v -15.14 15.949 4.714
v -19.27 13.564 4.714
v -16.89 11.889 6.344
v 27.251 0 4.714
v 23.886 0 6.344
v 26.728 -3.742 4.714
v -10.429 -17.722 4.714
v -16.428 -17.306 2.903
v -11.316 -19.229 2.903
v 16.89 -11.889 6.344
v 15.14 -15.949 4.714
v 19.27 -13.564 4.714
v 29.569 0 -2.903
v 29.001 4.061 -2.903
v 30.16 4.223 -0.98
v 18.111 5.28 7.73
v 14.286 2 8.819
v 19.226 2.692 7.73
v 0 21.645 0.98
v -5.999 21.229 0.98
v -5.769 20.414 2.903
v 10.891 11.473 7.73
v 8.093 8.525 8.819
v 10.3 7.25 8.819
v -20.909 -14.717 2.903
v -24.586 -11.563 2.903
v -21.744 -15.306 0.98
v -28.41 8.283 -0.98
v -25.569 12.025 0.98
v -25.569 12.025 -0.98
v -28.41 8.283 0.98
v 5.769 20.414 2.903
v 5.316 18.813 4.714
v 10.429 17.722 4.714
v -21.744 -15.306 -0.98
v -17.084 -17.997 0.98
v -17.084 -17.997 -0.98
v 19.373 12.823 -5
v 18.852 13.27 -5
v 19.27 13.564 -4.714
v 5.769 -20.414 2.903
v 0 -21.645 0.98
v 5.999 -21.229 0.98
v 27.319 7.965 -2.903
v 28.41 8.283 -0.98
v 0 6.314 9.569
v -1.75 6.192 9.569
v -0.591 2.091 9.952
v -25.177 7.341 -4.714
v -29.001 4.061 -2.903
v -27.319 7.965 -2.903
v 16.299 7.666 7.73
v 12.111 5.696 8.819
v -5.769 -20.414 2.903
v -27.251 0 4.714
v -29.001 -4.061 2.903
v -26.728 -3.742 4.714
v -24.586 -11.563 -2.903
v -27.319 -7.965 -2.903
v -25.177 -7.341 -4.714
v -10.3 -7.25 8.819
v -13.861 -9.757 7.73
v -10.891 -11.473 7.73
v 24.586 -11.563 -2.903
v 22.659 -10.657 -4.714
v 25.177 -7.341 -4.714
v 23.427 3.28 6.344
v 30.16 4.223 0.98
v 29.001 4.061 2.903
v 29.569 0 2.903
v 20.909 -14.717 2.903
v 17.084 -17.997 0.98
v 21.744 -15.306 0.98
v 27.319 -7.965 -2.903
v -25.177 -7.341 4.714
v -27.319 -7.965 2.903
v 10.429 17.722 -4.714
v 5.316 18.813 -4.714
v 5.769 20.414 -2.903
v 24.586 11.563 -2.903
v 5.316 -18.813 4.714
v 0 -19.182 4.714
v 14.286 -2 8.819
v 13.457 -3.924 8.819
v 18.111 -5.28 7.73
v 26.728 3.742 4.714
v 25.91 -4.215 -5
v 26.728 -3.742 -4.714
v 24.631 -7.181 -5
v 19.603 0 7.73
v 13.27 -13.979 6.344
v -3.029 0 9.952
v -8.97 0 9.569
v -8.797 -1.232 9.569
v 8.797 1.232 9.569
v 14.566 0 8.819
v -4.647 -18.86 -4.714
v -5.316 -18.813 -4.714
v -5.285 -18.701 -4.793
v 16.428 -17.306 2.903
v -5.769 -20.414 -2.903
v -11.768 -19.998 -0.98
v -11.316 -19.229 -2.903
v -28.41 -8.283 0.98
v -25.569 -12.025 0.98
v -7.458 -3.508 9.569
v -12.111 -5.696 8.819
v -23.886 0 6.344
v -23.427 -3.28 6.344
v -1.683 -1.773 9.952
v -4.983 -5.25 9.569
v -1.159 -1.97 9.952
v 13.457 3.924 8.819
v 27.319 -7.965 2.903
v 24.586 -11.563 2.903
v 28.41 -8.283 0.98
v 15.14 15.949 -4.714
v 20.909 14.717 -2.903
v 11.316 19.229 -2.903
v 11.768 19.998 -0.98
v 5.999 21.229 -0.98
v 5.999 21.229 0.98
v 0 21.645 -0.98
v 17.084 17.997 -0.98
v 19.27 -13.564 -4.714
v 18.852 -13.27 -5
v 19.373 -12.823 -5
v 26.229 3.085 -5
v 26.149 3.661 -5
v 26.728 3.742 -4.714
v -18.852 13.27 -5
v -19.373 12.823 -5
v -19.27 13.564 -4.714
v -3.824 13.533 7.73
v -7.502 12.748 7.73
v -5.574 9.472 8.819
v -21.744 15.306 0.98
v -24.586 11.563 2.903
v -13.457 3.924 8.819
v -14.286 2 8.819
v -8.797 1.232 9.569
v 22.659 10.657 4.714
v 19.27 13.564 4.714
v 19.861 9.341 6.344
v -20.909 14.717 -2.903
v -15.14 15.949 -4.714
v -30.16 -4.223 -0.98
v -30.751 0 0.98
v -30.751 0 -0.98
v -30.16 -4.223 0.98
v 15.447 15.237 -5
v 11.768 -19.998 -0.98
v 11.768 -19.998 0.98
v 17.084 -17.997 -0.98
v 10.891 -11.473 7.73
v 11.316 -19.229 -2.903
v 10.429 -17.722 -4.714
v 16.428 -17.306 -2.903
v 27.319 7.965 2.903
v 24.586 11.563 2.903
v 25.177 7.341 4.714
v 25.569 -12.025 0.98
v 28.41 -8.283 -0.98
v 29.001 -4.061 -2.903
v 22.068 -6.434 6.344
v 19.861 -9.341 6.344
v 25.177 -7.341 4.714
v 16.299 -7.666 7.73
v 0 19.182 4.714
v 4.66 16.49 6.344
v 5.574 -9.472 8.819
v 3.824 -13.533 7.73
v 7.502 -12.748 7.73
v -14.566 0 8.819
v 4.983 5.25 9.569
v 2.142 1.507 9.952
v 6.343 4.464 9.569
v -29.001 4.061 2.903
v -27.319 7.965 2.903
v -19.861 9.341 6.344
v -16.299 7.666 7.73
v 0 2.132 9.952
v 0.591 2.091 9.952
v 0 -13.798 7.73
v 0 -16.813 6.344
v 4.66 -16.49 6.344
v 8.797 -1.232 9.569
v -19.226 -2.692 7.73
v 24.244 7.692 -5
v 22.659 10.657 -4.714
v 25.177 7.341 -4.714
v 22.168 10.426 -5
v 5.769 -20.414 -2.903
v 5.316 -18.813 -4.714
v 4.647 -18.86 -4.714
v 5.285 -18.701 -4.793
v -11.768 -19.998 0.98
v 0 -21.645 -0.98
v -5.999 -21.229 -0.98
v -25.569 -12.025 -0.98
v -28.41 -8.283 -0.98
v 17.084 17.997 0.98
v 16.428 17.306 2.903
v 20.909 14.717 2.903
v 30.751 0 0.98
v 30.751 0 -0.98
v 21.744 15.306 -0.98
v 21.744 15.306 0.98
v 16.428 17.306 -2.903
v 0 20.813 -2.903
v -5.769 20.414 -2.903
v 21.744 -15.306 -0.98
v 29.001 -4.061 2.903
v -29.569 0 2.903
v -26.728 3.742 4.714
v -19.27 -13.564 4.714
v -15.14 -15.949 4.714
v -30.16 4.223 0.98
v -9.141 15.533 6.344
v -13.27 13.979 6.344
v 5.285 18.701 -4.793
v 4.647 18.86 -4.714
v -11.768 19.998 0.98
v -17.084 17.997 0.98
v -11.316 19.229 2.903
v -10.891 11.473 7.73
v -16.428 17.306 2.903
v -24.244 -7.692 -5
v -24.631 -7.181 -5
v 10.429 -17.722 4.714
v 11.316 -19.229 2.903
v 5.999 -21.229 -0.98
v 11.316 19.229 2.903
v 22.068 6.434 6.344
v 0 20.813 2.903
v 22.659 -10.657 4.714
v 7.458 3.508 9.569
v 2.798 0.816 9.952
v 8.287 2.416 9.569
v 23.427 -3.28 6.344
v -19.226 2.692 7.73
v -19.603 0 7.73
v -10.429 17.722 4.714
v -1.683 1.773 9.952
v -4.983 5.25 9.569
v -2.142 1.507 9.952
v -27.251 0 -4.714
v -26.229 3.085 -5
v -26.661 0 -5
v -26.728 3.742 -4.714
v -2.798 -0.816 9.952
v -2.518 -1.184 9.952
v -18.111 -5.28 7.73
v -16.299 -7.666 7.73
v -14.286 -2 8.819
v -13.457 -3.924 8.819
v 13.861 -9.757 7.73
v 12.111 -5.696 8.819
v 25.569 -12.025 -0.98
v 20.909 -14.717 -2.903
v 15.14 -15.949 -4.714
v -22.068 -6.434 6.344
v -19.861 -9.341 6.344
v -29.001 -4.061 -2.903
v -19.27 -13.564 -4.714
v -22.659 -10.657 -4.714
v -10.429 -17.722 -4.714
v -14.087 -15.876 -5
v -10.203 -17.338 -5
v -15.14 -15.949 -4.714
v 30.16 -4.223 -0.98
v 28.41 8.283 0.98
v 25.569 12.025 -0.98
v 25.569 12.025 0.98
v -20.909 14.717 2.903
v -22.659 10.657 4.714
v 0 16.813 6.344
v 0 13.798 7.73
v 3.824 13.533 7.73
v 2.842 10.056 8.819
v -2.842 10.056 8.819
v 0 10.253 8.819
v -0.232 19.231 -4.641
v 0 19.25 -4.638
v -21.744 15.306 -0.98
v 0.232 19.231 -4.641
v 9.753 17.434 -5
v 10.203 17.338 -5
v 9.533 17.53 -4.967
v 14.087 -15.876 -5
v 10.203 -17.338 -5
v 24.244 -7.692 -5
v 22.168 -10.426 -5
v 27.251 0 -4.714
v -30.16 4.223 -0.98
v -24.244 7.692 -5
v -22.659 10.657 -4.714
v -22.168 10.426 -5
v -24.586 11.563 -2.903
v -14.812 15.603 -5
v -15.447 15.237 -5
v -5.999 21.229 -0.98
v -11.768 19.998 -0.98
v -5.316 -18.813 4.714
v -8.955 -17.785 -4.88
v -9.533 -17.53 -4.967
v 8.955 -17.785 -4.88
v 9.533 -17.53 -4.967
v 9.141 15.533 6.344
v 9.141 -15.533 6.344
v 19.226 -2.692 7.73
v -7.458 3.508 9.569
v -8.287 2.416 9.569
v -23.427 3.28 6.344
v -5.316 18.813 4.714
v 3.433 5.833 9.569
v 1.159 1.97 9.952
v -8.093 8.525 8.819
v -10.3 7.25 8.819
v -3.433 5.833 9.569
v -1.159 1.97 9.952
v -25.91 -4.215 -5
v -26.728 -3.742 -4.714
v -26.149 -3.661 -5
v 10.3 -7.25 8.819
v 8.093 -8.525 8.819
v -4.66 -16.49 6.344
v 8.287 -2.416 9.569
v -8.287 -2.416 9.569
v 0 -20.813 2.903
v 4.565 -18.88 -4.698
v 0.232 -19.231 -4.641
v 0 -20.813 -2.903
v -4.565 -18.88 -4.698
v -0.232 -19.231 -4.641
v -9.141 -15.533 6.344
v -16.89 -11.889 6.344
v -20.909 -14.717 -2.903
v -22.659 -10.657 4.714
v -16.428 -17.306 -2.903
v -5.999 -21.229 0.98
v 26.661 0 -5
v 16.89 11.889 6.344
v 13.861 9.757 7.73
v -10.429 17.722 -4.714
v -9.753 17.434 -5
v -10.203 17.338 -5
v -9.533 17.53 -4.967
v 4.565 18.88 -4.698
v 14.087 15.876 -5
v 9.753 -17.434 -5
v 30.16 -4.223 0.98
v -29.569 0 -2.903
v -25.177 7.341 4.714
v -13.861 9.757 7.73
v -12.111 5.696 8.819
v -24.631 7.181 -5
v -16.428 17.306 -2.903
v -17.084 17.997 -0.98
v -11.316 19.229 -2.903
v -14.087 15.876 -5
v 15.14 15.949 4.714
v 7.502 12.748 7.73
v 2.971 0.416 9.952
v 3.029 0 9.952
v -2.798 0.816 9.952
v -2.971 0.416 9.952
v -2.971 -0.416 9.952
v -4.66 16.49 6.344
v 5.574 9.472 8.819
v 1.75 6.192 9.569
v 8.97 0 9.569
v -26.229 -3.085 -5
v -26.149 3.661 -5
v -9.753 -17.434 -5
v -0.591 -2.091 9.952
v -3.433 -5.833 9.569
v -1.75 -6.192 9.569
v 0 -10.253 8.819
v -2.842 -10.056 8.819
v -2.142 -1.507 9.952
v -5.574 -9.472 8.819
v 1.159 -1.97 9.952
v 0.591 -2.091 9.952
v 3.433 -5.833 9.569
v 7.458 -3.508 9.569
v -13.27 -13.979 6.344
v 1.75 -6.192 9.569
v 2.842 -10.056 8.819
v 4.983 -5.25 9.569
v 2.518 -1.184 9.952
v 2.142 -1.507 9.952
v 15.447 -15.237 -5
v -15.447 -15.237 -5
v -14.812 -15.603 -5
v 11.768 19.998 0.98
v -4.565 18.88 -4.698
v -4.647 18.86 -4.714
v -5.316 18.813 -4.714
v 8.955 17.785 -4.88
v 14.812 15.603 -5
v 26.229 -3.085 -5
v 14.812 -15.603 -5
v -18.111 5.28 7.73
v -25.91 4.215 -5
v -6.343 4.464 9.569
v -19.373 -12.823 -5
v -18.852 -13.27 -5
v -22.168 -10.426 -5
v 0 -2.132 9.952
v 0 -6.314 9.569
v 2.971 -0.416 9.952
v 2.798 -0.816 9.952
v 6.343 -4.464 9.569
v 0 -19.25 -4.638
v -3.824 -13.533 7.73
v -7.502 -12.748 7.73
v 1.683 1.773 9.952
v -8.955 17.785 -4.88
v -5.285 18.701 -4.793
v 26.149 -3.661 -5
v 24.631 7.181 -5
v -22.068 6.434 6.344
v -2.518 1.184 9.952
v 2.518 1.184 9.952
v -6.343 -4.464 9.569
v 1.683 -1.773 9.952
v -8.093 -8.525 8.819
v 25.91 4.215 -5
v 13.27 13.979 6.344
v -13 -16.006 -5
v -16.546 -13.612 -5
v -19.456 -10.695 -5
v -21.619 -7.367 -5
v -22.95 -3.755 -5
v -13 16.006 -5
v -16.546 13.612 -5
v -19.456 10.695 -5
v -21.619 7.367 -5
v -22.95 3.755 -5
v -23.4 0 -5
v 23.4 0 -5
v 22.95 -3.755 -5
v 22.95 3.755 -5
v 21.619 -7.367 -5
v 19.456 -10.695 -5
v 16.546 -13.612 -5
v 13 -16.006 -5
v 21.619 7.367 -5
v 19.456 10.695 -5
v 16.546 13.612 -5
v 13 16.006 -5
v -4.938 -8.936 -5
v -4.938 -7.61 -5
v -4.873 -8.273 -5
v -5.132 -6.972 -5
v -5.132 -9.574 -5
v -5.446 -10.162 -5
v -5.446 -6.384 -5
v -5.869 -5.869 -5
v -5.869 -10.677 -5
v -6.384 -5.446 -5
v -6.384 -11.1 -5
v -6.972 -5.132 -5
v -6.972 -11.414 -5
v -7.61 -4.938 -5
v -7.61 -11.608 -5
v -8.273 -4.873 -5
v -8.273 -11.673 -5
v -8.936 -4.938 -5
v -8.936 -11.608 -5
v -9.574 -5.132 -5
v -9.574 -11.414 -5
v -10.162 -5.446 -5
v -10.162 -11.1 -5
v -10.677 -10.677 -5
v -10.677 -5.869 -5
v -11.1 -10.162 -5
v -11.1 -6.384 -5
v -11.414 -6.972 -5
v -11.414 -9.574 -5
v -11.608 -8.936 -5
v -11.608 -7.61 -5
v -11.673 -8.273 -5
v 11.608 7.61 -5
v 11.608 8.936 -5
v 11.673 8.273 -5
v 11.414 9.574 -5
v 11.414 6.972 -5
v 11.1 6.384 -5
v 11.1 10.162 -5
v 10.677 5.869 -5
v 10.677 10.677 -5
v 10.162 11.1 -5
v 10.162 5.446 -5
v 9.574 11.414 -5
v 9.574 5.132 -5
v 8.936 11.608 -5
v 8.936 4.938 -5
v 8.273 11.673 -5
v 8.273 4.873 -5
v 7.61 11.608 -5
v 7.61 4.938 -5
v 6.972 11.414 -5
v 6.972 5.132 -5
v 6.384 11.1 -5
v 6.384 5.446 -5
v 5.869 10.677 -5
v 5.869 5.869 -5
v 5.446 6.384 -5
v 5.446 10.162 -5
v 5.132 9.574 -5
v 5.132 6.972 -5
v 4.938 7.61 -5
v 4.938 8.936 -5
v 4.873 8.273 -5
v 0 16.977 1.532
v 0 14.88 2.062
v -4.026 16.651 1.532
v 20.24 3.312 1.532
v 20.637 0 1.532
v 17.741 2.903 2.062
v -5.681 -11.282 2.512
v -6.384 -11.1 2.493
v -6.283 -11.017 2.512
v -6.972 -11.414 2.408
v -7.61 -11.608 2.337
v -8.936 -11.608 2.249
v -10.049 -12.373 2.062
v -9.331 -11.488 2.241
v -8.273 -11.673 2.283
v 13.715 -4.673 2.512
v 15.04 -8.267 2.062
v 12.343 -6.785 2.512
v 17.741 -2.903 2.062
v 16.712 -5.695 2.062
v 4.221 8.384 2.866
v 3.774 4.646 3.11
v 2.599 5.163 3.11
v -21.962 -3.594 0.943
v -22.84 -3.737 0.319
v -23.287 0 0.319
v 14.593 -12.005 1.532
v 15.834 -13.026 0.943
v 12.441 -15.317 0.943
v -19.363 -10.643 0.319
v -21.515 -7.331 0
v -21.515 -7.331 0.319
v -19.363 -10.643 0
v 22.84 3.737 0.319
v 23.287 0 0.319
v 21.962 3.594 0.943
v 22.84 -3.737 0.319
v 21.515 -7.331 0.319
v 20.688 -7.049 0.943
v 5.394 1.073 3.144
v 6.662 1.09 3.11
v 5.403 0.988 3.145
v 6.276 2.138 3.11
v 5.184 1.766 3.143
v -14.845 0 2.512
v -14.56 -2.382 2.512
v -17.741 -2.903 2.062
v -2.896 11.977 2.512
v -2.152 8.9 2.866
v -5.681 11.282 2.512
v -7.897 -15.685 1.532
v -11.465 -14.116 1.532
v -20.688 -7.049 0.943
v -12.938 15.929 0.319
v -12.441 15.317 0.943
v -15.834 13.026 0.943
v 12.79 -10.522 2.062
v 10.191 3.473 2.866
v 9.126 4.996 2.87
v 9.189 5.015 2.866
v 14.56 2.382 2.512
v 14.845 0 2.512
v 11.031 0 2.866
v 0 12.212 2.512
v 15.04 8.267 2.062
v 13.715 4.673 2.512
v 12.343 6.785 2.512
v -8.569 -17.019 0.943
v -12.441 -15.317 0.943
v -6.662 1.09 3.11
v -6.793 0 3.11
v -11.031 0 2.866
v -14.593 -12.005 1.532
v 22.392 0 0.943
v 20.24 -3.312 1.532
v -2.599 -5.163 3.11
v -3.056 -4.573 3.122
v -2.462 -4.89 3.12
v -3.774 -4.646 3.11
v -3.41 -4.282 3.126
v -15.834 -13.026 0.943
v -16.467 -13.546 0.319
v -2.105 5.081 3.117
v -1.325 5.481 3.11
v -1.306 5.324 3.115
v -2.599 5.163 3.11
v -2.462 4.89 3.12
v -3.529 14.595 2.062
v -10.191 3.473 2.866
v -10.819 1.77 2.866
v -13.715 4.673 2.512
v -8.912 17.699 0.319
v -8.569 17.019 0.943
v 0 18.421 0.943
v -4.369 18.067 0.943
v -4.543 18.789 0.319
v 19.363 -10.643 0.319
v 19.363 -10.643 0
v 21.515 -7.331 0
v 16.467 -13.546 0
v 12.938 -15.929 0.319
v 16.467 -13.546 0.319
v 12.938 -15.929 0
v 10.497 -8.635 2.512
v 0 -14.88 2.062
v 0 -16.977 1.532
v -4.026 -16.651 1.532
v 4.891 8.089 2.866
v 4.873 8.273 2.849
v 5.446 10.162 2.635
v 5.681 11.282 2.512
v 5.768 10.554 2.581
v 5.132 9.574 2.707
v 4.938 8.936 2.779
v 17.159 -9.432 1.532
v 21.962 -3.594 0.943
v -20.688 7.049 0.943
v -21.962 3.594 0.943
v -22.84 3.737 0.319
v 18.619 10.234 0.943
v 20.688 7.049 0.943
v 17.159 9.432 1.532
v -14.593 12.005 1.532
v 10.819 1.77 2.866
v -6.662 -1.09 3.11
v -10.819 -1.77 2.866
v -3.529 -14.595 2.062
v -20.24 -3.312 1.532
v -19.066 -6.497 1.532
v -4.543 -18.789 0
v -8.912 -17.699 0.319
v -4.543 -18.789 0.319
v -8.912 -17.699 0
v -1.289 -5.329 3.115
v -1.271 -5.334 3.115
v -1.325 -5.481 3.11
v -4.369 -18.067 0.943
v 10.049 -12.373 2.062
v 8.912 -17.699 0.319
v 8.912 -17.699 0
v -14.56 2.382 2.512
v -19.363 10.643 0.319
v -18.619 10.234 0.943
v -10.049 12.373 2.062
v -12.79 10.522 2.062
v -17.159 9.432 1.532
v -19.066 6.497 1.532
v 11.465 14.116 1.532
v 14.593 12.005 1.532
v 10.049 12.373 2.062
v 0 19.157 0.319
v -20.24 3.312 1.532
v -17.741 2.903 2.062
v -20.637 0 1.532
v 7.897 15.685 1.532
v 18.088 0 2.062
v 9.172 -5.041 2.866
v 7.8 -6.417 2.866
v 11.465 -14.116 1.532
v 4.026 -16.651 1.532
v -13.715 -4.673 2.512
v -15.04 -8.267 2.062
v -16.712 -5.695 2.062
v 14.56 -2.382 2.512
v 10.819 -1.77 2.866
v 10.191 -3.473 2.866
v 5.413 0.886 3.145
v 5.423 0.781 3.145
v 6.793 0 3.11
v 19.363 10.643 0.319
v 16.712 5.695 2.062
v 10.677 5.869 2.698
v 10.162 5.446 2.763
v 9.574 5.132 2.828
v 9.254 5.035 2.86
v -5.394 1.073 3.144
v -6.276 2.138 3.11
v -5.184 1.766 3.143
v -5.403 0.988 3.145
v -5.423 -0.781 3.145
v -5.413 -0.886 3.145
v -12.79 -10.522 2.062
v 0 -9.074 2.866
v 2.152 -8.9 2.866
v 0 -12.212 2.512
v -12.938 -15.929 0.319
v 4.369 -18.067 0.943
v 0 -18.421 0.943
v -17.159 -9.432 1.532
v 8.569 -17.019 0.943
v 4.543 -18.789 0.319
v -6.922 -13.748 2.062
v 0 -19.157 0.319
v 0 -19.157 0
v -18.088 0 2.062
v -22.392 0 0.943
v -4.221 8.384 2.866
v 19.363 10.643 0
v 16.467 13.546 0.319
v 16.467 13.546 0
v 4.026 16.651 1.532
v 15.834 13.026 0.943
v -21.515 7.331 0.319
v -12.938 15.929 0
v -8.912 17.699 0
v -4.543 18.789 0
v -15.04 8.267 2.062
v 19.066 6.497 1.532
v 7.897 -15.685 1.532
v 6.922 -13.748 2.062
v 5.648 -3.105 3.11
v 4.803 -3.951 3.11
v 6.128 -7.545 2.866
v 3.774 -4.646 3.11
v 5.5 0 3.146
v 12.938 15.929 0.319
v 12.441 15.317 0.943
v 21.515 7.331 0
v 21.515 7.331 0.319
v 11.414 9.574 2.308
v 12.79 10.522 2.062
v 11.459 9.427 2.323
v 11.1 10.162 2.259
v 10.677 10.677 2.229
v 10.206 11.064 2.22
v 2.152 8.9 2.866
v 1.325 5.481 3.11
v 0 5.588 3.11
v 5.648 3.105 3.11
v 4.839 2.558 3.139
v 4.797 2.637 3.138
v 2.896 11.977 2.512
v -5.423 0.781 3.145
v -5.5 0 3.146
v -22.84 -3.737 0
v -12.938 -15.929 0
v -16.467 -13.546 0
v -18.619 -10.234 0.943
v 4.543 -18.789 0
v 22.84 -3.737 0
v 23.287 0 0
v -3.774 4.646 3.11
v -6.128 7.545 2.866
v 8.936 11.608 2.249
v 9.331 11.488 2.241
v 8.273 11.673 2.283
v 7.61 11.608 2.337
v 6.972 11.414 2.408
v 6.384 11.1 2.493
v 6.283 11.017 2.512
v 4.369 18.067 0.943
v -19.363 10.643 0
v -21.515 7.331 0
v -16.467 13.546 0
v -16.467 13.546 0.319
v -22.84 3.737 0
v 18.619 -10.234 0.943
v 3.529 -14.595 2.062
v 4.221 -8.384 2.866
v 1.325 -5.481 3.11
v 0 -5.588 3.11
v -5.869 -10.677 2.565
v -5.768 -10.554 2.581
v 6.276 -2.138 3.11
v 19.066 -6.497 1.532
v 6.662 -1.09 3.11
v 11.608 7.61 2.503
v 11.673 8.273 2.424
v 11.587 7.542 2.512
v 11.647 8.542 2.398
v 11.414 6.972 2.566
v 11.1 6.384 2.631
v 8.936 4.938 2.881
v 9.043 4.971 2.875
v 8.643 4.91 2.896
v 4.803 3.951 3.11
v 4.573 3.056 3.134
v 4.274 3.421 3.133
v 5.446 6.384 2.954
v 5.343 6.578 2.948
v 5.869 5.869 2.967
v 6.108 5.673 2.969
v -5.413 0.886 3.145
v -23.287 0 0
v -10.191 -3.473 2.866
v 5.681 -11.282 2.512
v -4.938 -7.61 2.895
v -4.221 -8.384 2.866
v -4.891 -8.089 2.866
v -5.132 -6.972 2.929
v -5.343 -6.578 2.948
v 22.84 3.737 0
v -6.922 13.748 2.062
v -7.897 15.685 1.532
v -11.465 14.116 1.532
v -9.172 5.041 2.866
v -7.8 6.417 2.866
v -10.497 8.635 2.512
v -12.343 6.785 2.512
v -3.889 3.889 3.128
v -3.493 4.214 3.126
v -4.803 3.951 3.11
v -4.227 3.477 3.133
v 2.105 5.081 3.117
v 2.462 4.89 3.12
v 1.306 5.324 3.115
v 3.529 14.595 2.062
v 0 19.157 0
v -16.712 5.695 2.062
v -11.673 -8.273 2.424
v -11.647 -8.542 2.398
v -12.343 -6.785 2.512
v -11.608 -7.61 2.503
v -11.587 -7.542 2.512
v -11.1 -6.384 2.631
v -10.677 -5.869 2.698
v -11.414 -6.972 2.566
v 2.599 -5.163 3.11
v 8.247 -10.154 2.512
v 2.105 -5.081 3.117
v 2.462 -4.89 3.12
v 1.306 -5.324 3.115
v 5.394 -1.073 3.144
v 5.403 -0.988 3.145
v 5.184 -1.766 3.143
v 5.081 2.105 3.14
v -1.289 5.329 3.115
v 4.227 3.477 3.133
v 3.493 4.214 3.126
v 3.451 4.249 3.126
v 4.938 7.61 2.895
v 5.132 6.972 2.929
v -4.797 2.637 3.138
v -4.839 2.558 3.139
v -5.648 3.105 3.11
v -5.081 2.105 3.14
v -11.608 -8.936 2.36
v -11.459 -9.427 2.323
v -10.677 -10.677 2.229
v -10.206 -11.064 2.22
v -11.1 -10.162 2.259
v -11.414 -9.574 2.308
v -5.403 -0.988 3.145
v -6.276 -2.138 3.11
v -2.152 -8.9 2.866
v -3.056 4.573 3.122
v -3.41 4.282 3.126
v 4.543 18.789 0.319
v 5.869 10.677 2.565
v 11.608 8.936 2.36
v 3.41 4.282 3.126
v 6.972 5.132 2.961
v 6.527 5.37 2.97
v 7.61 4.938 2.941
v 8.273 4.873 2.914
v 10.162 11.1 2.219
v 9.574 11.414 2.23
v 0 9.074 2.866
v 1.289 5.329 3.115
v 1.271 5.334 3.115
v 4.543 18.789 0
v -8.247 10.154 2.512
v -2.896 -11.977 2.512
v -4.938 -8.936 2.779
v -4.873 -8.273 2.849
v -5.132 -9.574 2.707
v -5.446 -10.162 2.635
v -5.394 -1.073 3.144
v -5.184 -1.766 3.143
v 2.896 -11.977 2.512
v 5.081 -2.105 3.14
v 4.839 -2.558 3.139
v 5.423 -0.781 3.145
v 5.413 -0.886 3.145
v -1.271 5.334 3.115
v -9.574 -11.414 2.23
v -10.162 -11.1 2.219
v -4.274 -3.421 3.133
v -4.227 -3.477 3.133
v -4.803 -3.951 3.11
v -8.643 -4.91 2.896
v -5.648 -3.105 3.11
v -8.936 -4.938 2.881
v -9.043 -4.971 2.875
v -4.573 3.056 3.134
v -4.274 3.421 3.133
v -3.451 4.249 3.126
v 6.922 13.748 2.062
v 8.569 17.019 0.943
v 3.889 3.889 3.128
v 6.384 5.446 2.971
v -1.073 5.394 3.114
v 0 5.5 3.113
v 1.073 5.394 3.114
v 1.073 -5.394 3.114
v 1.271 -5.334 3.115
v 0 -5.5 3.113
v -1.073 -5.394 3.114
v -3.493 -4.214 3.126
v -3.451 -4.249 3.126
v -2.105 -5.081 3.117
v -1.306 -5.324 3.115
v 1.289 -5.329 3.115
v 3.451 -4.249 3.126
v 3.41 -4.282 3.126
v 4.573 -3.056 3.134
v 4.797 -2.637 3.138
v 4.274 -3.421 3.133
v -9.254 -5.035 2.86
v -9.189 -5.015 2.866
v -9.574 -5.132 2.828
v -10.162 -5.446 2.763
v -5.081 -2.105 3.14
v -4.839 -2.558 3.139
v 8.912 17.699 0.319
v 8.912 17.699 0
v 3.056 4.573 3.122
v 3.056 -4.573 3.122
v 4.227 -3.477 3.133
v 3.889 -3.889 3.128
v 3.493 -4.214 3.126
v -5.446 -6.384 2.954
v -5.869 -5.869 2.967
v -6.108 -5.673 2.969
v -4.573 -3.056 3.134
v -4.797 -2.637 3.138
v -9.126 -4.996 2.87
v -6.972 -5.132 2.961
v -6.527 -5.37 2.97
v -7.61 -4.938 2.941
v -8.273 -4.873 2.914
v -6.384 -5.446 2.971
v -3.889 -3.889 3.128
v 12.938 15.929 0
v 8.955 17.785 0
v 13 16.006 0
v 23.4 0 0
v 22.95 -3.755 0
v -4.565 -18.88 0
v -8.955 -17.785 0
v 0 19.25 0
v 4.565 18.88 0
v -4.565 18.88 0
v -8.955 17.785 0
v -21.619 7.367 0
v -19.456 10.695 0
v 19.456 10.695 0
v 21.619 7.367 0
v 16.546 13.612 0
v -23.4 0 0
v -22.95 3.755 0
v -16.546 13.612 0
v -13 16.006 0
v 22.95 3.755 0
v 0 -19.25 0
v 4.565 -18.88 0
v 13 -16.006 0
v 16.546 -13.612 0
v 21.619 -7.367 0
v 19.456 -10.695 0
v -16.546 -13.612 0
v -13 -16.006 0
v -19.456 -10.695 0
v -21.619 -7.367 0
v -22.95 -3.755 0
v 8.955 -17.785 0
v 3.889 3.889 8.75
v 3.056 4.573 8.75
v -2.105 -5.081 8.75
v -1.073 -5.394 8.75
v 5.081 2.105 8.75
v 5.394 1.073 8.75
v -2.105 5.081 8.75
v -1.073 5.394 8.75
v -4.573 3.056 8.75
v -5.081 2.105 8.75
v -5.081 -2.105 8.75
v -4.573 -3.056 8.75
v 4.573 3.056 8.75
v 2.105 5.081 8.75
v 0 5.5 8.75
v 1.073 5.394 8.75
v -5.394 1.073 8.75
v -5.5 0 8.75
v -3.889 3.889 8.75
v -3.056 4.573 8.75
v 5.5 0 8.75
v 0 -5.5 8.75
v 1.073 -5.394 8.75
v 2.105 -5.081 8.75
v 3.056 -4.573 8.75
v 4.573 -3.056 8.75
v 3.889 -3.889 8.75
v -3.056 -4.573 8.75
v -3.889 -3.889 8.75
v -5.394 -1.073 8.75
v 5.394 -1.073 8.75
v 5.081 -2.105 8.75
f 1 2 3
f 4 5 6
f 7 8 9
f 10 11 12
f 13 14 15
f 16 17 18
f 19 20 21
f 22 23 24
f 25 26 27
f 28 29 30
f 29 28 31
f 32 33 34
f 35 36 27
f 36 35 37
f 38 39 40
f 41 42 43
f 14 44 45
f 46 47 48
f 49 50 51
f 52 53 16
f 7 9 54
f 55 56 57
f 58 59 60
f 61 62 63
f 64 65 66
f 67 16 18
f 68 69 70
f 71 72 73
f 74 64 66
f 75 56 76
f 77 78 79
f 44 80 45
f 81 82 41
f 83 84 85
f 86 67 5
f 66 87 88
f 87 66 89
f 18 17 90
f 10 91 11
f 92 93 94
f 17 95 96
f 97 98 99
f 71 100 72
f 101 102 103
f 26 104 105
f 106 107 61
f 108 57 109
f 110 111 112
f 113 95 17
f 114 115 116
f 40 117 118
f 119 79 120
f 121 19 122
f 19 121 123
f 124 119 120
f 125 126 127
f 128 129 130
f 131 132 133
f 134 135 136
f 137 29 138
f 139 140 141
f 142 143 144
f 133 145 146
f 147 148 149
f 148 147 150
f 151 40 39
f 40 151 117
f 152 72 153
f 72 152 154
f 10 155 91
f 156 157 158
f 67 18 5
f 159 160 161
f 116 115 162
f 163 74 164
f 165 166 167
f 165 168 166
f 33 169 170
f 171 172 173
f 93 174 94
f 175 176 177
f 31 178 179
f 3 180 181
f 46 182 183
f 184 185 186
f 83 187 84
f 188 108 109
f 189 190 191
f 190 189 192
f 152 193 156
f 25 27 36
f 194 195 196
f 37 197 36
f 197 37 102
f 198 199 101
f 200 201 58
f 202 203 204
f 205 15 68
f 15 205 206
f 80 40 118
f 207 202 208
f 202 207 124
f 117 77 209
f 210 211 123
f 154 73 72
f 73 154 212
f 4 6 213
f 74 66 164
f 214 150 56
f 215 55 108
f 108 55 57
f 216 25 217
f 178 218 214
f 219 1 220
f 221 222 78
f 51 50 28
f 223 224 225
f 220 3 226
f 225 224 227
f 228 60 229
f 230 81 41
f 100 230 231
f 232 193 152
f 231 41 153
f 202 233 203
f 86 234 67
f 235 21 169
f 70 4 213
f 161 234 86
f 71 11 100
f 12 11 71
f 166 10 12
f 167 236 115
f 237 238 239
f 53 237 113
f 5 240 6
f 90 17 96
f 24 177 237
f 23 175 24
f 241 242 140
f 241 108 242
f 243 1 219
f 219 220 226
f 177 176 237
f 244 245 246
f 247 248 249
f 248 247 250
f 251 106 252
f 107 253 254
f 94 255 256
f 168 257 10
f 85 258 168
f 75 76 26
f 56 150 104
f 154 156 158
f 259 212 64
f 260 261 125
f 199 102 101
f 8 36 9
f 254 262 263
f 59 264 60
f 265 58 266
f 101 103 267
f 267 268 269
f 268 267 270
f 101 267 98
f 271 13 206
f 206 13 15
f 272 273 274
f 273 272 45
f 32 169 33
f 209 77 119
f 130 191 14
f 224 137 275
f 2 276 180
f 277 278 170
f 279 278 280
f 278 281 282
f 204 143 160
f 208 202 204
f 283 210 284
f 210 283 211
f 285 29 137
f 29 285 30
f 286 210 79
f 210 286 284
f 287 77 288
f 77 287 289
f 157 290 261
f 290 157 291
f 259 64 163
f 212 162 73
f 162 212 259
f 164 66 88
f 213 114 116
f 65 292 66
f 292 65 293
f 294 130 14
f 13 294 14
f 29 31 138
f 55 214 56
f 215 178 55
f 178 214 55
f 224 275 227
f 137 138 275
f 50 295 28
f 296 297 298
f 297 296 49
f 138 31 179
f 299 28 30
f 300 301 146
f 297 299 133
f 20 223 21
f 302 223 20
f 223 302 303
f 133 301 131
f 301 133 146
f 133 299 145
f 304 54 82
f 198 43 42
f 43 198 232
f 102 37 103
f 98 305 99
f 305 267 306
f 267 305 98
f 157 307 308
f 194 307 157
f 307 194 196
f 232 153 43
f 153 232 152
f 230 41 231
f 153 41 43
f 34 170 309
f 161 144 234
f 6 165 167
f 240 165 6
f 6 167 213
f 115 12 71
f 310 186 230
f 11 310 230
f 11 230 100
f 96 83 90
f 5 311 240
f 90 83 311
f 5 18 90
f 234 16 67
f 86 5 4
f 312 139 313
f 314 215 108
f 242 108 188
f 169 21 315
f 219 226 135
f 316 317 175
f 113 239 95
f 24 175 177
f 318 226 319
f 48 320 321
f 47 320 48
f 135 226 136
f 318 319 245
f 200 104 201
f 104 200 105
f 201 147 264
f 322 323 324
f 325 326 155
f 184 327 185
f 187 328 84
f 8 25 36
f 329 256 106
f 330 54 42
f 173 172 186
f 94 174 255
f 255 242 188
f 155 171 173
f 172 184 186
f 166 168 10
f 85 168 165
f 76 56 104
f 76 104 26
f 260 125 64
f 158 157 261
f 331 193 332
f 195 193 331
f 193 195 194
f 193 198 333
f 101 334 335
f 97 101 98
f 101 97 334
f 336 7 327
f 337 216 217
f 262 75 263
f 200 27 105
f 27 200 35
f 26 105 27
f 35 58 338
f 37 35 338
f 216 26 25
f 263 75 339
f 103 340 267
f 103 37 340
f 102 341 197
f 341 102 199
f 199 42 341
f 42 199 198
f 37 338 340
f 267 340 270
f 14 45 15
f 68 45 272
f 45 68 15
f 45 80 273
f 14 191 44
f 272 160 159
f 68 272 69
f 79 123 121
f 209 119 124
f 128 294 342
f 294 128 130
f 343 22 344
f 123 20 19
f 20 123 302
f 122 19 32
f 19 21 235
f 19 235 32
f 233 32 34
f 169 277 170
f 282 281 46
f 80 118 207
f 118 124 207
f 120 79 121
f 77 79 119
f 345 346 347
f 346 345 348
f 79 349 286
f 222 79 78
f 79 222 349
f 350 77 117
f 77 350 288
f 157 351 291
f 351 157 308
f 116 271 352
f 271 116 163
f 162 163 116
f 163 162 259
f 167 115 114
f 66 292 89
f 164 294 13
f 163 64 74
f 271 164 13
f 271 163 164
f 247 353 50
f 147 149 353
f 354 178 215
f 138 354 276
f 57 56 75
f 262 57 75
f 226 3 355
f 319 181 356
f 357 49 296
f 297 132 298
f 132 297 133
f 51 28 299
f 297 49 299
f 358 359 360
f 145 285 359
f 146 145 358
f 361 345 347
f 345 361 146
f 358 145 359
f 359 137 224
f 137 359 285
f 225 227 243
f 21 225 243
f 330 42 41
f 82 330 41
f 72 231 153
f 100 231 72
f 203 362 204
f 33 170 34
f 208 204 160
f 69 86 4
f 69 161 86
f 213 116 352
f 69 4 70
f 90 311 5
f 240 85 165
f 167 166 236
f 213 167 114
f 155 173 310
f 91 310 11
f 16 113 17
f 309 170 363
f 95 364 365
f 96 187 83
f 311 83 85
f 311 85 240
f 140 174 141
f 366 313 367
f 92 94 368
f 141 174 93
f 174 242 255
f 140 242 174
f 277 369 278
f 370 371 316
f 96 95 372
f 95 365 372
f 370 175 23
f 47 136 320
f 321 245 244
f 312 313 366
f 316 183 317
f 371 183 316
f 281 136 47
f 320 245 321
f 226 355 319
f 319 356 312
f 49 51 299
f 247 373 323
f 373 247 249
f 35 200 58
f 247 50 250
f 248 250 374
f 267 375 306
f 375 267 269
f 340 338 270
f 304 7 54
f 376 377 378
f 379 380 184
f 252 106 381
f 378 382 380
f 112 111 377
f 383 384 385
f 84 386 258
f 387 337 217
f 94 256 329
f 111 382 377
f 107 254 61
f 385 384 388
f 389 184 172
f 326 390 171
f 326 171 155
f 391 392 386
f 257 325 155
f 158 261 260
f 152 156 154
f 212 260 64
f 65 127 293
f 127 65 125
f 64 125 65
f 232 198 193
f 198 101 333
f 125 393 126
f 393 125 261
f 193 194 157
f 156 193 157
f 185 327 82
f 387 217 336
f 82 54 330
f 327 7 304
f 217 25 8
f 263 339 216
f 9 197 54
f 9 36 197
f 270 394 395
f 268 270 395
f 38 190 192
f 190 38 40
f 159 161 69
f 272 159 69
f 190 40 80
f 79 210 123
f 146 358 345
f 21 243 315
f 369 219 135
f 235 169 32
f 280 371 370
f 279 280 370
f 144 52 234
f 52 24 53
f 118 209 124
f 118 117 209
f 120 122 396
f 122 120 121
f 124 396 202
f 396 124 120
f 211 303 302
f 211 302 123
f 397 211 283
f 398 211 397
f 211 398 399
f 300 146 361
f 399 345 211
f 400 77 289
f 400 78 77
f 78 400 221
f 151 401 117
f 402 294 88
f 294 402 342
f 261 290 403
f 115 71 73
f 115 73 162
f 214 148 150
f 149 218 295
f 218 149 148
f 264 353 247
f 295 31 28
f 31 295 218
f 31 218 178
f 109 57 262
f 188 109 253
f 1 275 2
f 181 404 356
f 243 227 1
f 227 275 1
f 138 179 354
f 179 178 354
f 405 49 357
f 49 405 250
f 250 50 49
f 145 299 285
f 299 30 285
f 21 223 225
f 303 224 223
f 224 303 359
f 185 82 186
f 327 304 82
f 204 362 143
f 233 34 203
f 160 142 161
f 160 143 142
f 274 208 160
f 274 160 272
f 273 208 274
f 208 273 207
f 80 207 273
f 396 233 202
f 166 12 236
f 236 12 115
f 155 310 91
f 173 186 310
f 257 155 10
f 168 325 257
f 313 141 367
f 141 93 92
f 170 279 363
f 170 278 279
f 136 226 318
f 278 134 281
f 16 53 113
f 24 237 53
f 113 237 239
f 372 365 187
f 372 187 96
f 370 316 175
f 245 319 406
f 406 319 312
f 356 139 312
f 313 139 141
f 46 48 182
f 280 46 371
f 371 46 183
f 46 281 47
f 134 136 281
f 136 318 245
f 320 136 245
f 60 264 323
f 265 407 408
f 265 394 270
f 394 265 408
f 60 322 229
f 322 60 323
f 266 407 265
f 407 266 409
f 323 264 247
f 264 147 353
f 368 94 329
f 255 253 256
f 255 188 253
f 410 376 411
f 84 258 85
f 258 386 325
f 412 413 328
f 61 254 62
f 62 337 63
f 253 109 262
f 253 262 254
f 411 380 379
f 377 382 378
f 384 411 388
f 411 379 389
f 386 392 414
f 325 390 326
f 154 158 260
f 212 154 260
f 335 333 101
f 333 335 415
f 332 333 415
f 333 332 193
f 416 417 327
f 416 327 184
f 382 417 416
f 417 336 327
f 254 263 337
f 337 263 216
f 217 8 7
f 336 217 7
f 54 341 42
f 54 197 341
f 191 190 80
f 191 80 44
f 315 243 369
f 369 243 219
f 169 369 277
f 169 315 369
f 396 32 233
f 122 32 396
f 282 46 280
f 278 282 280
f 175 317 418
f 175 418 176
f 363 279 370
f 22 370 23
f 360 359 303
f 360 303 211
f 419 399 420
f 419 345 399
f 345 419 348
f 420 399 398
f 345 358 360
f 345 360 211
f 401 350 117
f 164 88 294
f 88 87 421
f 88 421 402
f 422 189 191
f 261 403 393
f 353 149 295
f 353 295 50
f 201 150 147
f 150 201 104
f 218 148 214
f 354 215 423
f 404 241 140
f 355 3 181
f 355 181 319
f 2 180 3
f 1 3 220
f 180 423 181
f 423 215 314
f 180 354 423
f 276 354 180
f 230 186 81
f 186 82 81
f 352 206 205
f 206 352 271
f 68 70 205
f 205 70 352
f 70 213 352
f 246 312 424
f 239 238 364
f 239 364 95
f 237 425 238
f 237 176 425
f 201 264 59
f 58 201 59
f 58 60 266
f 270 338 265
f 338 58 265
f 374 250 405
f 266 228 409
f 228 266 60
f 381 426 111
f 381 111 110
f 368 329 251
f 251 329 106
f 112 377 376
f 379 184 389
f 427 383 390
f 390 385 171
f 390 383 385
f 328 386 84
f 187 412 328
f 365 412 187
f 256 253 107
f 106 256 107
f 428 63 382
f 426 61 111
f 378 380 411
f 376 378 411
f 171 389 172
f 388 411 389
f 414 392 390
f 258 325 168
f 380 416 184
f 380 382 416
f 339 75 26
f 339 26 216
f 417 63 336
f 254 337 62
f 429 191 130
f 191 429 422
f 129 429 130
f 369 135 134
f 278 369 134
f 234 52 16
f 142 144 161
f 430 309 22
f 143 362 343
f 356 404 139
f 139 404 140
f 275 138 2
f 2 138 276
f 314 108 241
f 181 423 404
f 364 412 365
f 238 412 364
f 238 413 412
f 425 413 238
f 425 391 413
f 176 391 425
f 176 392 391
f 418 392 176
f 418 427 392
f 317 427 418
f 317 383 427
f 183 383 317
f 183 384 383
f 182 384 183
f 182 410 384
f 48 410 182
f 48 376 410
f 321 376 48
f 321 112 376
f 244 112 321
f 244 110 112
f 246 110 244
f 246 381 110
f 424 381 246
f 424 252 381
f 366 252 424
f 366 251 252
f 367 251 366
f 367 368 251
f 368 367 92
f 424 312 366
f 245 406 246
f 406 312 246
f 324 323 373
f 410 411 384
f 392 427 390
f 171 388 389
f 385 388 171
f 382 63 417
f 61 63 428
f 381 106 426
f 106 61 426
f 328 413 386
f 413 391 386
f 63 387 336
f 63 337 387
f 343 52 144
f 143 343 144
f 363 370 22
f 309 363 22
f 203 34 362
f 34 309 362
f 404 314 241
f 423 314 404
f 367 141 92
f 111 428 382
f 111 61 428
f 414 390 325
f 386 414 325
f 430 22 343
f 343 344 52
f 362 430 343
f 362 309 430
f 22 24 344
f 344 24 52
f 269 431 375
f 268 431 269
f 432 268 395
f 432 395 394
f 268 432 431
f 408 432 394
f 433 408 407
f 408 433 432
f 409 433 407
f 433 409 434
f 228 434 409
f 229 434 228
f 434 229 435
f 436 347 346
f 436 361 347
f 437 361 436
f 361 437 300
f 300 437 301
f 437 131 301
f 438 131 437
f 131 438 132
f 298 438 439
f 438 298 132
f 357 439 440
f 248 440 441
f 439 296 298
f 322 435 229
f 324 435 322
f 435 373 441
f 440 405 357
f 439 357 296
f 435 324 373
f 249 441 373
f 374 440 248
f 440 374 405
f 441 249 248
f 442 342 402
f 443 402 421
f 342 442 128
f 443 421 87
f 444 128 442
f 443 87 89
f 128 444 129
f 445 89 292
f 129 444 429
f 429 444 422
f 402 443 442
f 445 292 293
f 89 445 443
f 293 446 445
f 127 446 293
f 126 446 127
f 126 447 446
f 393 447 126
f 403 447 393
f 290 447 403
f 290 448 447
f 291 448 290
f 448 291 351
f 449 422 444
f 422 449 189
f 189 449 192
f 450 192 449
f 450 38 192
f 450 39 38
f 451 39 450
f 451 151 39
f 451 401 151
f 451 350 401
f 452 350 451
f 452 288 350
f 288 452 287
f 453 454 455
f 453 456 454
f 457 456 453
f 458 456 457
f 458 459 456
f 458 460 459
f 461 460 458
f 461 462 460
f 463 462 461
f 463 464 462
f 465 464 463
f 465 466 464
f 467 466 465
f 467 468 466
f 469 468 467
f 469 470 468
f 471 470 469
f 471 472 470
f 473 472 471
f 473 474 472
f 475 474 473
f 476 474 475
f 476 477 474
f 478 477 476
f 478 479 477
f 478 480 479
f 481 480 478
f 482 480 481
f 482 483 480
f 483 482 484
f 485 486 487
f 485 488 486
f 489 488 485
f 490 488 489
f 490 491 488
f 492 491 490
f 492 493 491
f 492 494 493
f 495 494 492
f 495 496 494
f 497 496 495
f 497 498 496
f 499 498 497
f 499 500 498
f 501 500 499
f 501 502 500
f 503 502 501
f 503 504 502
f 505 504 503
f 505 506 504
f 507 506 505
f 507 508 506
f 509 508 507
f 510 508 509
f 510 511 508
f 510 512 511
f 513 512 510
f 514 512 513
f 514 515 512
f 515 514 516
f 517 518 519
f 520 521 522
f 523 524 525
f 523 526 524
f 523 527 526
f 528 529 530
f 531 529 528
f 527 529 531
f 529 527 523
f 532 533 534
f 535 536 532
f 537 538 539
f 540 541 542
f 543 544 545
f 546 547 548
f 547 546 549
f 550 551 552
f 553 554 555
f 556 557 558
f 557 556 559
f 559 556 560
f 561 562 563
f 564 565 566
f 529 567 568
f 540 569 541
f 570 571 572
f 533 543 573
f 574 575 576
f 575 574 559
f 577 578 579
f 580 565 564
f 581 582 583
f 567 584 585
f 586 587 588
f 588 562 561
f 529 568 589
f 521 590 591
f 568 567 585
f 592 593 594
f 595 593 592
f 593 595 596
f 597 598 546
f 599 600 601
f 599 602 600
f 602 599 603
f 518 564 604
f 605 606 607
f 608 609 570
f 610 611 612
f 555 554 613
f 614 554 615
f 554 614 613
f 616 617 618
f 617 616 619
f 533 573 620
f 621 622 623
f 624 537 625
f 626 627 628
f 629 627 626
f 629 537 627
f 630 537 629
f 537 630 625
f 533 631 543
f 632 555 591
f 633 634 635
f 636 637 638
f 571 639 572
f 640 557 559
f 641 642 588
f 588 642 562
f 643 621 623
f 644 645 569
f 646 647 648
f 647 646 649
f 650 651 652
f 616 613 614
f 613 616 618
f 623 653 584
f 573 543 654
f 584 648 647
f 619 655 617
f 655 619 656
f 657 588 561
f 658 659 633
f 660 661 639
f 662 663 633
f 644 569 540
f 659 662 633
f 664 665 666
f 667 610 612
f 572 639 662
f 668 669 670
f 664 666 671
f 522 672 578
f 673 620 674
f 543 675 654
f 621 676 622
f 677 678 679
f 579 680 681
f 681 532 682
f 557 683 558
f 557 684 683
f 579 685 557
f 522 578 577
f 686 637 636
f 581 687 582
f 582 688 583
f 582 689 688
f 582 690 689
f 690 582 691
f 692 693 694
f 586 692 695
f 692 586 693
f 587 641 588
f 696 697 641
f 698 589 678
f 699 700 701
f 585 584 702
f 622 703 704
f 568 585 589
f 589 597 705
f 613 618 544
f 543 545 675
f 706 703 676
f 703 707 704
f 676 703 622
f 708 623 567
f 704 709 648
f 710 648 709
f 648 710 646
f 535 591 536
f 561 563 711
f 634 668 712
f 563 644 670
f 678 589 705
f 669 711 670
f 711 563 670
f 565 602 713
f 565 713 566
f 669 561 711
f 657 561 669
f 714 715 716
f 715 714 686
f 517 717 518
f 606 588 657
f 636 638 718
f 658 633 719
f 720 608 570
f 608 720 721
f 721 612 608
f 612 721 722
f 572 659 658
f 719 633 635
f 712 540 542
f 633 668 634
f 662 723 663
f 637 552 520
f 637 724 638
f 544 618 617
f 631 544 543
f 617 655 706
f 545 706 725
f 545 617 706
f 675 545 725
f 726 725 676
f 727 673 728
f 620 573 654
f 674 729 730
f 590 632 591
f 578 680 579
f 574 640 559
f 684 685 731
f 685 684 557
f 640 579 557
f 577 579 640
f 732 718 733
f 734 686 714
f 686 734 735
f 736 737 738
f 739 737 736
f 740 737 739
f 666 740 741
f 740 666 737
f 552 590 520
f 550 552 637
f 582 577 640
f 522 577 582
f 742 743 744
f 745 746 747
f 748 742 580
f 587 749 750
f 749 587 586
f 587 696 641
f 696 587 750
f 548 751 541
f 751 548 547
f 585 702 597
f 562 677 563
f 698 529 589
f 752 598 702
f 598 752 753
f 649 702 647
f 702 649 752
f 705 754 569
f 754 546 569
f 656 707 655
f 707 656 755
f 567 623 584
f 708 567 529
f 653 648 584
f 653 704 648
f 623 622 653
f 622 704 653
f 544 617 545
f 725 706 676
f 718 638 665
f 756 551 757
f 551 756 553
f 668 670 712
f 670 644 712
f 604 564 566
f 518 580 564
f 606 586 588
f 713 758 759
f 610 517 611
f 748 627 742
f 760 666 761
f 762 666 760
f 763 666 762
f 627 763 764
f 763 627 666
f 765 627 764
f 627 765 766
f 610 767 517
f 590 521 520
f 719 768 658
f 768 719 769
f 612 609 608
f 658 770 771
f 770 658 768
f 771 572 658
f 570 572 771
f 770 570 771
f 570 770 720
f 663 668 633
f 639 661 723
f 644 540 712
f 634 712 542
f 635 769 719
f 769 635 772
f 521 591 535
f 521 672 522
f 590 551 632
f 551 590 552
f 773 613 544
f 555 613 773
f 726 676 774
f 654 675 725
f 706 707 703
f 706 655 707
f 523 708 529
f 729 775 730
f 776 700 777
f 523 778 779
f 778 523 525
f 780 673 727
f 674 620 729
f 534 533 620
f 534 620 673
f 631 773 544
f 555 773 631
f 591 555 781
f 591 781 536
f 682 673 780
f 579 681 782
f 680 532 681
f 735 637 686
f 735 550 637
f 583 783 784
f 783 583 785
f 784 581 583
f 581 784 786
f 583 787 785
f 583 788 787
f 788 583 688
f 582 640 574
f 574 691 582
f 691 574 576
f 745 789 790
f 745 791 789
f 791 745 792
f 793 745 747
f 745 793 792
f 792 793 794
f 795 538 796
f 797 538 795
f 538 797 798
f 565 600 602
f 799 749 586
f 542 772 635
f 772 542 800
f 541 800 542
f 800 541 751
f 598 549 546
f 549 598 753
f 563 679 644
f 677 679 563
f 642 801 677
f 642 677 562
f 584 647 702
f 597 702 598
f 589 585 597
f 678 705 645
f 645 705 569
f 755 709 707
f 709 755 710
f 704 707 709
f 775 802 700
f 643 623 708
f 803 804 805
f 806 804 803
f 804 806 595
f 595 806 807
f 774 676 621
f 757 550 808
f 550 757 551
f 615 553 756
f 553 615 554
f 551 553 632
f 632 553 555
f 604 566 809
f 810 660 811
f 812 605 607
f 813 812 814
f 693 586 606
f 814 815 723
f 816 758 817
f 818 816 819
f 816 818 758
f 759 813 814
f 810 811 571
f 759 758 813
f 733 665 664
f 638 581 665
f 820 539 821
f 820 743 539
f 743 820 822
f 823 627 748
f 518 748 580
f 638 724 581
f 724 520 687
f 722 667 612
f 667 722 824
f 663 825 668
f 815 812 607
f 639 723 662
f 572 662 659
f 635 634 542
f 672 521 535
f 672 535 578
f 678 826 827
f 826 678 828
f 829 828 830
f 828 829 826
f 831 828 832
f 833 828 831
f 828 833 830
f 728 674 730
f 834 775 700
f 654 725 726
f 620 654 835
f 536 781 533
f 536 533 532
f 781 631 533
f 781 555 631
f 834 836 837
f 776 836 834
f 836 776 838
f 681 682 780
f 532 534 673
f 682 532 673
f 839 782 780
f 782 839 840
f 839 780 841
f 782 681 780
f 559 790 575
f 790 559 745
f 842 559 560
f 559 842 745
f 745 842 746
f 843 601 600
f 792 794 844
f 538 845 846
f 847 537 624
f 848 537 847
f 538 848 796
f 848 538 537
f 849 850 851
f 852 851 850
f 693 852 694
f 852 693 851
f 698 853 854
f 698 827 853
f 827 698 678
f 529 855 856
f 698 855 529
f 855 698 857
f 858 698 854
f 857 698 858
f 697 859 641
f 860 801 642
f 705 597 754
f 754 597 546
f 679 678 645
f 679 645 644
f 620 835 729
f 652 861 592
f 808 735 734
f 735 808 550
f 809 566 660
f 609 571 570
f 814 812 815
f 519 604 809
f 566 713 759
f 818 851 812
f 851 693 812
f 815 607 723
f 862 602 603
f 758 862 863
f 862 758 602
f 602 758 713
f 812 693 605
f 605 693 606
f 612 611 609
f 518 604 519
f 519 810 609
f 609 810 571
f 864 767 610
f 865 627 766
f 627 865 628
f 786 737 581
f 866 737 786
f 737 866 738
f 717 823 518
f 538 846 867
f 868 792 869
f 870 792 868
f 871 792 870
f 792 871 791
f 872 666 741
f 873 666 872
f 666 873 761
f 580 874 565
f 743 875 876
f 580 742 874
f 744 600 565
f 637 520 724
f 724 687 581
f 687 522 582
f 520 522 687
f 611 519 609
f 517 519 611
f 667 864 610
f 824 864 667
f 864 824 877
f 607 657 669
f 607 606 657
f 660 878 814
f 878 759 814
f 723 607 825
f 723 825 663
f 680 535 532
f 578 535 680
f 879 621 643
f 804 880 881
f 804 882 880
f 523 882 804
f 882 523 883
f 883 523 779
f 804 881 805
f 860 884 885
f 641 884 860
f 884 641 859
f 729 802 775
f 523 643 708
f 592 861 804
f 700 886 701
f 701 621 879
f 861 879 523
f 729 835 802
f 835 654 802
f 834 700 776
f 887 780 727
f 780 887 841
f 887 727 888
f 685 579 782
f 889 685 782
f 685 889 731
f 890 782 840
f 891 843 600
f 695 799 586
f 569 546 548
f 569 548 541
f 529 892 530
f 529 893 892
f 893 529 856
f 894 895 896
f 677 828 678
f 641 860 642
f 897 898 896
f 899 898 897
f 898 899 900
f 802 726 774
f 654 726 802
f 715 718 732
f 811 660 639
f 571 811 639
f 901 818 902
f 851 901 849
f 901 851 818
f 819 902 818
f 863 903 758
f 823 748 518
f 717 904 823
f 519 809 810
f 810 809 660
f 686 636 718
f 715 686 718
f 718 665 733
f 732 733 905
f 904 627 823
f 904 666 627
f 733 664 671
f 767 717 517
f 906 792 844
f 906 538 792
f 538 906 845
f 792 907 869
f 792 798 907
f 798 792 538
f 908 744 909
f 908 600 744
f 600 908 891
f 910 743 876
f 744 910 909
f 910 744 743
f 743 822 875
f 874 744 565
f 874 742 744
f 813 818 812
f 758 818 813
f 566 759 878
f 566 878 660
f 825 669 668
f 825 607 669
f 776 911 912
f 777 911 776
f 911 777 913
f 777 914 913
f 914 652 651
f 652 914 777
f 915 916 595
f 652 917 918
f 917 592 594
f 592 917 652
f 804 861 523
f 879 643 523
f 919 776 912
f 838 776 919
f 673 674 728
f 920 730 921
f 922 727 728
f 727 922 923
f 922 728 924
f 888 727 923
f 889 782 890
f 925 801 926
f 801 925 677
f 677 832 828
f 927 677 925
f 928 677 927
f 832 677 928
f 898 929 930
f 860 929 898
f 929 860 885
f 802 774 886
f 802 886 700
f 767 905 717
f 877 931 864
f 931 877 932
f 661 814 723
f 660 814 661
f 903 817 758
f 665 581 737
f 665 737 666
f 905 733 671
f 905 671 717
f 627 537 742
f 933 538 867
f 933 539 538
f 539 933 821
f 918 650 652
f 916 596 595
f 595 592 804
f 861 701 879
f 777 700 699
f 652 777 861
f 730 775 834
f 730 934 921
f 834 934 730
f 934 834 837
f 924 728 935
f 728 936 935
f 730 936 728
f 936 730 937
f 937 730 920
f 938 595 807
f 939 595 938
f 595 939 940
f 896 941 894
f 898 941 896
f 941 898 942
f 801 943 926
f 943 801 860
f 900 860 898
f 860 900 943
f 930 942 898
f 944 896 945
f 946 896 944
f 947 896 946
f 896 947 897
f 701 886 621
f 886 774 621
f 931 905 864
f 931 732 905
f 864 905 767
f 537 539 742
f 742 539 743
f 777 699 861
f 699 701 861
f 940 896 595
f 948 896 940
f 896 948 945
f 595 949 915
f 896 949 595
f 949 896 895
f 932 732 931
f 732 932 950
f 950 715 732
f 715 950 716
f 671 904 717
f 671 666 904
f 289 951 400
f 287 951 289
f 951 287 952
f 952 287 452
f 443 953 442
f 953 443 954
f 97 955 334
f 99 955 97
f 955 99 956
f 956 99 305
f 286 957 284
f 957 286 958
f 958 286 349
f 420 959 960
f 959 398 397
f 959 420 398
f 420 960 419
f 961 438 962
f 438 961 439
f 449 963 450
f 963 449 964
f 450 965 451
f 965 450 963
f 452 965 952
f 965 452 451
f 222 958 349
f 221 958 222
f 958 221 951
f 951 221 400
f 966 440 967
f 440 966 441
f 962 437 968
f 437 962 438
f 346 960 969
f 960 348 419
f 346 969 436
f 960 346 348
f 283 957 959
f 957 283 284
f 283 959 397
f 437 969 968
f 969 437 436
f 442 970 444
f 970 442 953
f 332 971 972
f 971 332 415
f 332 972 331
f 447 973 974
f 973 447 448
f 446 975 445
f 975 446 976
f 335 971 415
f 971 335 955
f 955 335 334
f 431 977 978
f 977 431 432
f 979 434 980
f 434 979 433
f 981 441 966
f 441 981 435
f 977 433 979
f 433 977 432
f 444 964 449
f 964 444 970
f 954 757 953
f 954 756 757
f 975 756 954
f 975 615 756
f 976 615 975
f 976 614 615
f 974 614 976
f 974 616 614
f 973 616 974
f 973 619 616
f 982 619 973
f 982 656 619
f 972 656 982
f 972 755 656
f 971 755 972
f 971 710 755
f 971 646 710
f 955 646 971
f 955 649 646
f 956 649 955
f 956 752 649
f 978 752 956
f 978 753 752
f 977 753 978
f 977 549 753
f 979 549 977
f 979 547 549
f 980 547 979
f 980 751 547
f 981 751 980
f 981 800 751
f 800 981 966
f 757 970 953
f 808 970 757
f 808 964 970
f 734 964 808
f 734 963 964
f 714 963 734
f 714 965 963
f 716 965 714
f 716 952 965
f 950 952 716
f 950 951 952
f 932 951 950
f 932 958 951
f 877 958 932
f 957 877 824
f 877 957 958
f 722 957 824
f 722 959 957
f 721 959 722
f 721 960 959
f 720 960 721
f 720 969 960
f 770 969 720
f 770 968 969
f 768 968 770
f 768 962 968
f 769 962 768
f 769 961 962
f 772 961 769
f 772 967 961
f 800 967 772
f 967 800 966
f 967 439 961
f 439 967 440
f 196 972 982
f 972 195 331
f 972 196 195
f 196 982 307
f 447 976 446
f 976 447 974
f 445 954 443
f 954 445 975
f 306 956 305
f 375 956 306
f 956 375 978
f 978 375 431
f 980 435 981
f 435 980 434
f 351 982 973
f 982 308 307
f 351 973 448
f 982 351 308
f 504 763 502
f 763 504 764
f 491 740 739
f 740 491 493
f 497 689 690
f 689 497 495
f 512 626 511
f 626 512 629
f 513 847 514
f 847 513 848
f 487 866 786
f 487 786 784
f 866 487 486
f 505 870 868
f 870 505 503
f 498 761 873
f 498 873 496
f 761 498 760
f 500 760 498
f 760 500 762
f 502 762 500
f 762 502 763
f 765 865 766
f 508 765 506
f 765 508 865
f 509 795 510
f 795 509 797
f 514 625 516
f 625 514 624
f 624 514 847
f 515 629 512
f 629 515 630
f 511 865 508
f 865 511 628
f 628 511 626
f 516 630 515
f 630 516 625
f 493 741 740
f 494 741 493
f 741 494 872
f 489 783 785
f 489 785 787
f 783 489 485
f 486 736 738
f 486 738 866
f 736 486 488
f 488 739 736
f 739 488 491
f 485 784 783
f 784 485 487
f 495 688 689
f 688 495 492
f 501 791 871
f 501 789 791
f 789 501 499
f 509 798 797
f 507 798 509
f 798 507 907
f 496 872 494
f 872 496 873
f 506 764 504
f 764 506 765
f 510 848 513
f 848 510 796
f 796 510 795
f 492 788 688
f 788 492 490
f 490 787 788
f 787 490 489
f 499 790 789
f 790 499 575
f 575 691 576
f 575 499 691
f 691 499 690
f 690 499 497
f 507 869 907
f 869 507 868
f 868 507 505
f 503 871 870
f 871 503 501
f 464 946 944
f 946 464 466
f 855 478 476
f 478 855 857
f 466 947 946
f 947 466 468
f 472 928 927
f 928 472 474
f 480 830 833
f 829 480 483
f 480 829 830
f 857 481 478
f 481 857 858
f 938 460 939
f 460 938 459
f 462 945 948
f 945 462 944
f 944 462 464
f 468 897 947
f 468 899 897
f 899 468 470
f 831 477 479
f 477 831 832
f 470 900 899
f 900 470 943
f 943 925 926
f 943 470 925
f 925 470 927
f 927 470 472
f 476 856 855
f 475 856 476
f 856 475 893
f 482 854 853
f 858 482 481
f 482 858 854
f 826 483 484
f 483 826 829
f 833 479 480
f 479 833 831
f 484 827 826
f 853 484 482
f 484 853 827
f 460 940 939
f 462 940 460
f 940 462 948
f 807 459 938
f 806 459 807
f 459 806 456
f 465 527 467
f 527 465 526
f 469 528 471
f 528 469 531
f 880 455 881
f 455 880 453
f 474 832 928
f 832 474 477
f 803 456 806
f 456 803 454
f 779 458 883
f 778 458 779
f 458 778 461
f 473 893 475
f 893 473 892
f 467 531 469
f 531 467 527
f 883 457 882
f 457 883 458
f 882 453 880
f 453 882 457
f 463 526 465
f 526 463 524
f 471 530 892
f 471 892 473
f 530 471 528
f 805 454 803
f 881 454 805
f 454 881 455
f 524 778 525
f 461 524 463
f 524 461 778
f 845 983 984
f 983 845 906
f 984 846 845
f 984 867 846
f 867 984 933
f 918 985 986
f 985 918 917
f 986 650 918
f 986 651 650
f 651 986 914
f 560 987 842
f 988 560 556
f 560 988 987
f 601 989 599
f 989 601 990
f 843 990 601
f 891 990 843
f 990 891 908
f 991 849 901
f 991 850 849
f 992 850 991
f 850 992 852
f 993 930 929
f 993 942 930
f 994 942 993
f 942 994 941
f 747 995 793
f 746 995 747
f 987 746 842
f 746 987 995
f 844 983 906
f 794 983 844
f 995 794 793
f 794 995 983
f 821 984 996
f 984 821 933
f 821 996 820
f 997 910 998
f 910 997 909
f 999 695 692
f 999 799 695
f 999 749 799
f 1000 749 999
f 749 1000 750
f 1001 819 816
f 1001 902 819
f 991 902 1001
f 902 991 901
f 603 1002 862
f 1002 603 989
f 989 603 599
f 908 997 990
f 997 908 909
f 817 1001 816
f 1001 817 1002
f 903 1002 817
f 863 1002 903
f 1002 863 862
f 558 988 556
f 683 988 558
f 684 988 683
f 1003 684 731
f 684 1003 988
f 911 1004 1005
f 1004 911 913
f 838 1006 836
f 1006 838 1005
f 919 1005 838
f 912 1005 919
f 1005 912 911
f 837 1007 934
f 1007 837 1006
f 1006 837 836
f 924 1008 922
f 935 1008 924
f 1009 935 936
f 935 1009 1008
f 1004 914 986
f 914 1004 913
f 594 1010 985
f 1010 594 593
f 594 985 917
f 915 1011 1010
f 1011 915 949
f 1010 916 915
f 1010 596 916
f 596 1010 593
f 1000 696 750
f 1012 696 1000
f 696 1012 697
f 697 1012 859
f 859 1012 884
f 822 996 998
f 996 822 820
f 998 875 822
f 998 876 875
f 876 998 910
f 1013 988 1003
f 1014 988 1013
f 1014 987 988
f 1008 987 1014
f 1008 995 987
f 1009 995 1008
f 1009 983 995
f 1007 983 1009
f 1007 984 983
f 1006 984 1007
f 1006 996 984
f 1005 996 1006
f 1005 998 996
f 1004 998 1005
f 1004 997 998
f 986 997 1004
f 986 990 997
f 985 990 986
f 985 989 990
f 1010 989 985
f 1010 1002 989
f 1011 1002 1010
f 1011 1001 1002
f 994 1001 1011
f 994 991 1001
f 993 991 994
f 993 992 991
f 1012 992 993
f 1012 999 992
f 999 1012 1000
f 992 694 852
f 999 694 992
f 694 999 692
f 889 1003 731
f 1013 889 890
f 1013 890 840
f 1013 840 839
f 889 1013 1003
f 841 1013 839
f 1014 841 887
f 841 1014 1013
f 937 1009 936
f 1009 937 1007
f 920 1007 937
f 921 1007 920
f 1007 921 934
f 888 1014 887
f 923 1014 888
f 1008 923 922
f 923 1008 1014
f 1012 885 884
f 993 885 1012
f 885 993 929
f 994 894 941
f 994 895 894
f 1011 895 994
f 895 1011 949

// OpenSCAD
GAP = 0.5;
MAJOR = 45.8 + 2*GAP;
MINOR = 37.5 + 2*GAP;
BASE_THICKNESS = 6.5;
HOLE_SIZE = 7.8;
SHAFT_SIZE = 10;


$fn = 32;


module base() {
  difference() {
    union() {
      scale([1, MINOR/MAJOR, BASE_THICKNESS/MAJOR])
        sphere(MAJOR/2);
      scale([1, MINOR/MAJOR, 1])
        translate([0, 0, -BASE_THICKNESS*2])
        cylinder(h=BASE_THICKNESS*2, r=MAJOR/2);
    }
    rotate([0, 0, 45]) {
      translate([MAJOR/4, 0, 0])
        cylinder(h=BASE_THICKNESS*2, r=HOLE_SIZE/2 - GAP, center=true);
      translate([-MAJOR/4, 0, 0])
        cylinder(h=BASE_THICKNESS*2, r=HOLE_SIZE/2 - GAP, center=true);
    }
  }
  cylinder(h=BASE_THICKNESS+11, r=SHAFT_SIZE/2 + GAP, center=true);
}

MAJOR_GRIP = MAJOR + 15;
MINOR_GRIP = MINOR + 5;
GRIP_THICKNESS = 20;

module grip() {
  difference() {
    scale([1, MINOR_GRIP/MAJOR_GRIP, GRIP_THICKNESS/MAJOR_GRIP])
      sphere(MAJOR_GRIP/2);
    translate([0, 0, -MAJOR_GRIP/2 - GRIP_THICKNESS/4])
      cube(MAJOR_GRIP, center=true);
  }
}

difference() {
  grip();
  base();
}
